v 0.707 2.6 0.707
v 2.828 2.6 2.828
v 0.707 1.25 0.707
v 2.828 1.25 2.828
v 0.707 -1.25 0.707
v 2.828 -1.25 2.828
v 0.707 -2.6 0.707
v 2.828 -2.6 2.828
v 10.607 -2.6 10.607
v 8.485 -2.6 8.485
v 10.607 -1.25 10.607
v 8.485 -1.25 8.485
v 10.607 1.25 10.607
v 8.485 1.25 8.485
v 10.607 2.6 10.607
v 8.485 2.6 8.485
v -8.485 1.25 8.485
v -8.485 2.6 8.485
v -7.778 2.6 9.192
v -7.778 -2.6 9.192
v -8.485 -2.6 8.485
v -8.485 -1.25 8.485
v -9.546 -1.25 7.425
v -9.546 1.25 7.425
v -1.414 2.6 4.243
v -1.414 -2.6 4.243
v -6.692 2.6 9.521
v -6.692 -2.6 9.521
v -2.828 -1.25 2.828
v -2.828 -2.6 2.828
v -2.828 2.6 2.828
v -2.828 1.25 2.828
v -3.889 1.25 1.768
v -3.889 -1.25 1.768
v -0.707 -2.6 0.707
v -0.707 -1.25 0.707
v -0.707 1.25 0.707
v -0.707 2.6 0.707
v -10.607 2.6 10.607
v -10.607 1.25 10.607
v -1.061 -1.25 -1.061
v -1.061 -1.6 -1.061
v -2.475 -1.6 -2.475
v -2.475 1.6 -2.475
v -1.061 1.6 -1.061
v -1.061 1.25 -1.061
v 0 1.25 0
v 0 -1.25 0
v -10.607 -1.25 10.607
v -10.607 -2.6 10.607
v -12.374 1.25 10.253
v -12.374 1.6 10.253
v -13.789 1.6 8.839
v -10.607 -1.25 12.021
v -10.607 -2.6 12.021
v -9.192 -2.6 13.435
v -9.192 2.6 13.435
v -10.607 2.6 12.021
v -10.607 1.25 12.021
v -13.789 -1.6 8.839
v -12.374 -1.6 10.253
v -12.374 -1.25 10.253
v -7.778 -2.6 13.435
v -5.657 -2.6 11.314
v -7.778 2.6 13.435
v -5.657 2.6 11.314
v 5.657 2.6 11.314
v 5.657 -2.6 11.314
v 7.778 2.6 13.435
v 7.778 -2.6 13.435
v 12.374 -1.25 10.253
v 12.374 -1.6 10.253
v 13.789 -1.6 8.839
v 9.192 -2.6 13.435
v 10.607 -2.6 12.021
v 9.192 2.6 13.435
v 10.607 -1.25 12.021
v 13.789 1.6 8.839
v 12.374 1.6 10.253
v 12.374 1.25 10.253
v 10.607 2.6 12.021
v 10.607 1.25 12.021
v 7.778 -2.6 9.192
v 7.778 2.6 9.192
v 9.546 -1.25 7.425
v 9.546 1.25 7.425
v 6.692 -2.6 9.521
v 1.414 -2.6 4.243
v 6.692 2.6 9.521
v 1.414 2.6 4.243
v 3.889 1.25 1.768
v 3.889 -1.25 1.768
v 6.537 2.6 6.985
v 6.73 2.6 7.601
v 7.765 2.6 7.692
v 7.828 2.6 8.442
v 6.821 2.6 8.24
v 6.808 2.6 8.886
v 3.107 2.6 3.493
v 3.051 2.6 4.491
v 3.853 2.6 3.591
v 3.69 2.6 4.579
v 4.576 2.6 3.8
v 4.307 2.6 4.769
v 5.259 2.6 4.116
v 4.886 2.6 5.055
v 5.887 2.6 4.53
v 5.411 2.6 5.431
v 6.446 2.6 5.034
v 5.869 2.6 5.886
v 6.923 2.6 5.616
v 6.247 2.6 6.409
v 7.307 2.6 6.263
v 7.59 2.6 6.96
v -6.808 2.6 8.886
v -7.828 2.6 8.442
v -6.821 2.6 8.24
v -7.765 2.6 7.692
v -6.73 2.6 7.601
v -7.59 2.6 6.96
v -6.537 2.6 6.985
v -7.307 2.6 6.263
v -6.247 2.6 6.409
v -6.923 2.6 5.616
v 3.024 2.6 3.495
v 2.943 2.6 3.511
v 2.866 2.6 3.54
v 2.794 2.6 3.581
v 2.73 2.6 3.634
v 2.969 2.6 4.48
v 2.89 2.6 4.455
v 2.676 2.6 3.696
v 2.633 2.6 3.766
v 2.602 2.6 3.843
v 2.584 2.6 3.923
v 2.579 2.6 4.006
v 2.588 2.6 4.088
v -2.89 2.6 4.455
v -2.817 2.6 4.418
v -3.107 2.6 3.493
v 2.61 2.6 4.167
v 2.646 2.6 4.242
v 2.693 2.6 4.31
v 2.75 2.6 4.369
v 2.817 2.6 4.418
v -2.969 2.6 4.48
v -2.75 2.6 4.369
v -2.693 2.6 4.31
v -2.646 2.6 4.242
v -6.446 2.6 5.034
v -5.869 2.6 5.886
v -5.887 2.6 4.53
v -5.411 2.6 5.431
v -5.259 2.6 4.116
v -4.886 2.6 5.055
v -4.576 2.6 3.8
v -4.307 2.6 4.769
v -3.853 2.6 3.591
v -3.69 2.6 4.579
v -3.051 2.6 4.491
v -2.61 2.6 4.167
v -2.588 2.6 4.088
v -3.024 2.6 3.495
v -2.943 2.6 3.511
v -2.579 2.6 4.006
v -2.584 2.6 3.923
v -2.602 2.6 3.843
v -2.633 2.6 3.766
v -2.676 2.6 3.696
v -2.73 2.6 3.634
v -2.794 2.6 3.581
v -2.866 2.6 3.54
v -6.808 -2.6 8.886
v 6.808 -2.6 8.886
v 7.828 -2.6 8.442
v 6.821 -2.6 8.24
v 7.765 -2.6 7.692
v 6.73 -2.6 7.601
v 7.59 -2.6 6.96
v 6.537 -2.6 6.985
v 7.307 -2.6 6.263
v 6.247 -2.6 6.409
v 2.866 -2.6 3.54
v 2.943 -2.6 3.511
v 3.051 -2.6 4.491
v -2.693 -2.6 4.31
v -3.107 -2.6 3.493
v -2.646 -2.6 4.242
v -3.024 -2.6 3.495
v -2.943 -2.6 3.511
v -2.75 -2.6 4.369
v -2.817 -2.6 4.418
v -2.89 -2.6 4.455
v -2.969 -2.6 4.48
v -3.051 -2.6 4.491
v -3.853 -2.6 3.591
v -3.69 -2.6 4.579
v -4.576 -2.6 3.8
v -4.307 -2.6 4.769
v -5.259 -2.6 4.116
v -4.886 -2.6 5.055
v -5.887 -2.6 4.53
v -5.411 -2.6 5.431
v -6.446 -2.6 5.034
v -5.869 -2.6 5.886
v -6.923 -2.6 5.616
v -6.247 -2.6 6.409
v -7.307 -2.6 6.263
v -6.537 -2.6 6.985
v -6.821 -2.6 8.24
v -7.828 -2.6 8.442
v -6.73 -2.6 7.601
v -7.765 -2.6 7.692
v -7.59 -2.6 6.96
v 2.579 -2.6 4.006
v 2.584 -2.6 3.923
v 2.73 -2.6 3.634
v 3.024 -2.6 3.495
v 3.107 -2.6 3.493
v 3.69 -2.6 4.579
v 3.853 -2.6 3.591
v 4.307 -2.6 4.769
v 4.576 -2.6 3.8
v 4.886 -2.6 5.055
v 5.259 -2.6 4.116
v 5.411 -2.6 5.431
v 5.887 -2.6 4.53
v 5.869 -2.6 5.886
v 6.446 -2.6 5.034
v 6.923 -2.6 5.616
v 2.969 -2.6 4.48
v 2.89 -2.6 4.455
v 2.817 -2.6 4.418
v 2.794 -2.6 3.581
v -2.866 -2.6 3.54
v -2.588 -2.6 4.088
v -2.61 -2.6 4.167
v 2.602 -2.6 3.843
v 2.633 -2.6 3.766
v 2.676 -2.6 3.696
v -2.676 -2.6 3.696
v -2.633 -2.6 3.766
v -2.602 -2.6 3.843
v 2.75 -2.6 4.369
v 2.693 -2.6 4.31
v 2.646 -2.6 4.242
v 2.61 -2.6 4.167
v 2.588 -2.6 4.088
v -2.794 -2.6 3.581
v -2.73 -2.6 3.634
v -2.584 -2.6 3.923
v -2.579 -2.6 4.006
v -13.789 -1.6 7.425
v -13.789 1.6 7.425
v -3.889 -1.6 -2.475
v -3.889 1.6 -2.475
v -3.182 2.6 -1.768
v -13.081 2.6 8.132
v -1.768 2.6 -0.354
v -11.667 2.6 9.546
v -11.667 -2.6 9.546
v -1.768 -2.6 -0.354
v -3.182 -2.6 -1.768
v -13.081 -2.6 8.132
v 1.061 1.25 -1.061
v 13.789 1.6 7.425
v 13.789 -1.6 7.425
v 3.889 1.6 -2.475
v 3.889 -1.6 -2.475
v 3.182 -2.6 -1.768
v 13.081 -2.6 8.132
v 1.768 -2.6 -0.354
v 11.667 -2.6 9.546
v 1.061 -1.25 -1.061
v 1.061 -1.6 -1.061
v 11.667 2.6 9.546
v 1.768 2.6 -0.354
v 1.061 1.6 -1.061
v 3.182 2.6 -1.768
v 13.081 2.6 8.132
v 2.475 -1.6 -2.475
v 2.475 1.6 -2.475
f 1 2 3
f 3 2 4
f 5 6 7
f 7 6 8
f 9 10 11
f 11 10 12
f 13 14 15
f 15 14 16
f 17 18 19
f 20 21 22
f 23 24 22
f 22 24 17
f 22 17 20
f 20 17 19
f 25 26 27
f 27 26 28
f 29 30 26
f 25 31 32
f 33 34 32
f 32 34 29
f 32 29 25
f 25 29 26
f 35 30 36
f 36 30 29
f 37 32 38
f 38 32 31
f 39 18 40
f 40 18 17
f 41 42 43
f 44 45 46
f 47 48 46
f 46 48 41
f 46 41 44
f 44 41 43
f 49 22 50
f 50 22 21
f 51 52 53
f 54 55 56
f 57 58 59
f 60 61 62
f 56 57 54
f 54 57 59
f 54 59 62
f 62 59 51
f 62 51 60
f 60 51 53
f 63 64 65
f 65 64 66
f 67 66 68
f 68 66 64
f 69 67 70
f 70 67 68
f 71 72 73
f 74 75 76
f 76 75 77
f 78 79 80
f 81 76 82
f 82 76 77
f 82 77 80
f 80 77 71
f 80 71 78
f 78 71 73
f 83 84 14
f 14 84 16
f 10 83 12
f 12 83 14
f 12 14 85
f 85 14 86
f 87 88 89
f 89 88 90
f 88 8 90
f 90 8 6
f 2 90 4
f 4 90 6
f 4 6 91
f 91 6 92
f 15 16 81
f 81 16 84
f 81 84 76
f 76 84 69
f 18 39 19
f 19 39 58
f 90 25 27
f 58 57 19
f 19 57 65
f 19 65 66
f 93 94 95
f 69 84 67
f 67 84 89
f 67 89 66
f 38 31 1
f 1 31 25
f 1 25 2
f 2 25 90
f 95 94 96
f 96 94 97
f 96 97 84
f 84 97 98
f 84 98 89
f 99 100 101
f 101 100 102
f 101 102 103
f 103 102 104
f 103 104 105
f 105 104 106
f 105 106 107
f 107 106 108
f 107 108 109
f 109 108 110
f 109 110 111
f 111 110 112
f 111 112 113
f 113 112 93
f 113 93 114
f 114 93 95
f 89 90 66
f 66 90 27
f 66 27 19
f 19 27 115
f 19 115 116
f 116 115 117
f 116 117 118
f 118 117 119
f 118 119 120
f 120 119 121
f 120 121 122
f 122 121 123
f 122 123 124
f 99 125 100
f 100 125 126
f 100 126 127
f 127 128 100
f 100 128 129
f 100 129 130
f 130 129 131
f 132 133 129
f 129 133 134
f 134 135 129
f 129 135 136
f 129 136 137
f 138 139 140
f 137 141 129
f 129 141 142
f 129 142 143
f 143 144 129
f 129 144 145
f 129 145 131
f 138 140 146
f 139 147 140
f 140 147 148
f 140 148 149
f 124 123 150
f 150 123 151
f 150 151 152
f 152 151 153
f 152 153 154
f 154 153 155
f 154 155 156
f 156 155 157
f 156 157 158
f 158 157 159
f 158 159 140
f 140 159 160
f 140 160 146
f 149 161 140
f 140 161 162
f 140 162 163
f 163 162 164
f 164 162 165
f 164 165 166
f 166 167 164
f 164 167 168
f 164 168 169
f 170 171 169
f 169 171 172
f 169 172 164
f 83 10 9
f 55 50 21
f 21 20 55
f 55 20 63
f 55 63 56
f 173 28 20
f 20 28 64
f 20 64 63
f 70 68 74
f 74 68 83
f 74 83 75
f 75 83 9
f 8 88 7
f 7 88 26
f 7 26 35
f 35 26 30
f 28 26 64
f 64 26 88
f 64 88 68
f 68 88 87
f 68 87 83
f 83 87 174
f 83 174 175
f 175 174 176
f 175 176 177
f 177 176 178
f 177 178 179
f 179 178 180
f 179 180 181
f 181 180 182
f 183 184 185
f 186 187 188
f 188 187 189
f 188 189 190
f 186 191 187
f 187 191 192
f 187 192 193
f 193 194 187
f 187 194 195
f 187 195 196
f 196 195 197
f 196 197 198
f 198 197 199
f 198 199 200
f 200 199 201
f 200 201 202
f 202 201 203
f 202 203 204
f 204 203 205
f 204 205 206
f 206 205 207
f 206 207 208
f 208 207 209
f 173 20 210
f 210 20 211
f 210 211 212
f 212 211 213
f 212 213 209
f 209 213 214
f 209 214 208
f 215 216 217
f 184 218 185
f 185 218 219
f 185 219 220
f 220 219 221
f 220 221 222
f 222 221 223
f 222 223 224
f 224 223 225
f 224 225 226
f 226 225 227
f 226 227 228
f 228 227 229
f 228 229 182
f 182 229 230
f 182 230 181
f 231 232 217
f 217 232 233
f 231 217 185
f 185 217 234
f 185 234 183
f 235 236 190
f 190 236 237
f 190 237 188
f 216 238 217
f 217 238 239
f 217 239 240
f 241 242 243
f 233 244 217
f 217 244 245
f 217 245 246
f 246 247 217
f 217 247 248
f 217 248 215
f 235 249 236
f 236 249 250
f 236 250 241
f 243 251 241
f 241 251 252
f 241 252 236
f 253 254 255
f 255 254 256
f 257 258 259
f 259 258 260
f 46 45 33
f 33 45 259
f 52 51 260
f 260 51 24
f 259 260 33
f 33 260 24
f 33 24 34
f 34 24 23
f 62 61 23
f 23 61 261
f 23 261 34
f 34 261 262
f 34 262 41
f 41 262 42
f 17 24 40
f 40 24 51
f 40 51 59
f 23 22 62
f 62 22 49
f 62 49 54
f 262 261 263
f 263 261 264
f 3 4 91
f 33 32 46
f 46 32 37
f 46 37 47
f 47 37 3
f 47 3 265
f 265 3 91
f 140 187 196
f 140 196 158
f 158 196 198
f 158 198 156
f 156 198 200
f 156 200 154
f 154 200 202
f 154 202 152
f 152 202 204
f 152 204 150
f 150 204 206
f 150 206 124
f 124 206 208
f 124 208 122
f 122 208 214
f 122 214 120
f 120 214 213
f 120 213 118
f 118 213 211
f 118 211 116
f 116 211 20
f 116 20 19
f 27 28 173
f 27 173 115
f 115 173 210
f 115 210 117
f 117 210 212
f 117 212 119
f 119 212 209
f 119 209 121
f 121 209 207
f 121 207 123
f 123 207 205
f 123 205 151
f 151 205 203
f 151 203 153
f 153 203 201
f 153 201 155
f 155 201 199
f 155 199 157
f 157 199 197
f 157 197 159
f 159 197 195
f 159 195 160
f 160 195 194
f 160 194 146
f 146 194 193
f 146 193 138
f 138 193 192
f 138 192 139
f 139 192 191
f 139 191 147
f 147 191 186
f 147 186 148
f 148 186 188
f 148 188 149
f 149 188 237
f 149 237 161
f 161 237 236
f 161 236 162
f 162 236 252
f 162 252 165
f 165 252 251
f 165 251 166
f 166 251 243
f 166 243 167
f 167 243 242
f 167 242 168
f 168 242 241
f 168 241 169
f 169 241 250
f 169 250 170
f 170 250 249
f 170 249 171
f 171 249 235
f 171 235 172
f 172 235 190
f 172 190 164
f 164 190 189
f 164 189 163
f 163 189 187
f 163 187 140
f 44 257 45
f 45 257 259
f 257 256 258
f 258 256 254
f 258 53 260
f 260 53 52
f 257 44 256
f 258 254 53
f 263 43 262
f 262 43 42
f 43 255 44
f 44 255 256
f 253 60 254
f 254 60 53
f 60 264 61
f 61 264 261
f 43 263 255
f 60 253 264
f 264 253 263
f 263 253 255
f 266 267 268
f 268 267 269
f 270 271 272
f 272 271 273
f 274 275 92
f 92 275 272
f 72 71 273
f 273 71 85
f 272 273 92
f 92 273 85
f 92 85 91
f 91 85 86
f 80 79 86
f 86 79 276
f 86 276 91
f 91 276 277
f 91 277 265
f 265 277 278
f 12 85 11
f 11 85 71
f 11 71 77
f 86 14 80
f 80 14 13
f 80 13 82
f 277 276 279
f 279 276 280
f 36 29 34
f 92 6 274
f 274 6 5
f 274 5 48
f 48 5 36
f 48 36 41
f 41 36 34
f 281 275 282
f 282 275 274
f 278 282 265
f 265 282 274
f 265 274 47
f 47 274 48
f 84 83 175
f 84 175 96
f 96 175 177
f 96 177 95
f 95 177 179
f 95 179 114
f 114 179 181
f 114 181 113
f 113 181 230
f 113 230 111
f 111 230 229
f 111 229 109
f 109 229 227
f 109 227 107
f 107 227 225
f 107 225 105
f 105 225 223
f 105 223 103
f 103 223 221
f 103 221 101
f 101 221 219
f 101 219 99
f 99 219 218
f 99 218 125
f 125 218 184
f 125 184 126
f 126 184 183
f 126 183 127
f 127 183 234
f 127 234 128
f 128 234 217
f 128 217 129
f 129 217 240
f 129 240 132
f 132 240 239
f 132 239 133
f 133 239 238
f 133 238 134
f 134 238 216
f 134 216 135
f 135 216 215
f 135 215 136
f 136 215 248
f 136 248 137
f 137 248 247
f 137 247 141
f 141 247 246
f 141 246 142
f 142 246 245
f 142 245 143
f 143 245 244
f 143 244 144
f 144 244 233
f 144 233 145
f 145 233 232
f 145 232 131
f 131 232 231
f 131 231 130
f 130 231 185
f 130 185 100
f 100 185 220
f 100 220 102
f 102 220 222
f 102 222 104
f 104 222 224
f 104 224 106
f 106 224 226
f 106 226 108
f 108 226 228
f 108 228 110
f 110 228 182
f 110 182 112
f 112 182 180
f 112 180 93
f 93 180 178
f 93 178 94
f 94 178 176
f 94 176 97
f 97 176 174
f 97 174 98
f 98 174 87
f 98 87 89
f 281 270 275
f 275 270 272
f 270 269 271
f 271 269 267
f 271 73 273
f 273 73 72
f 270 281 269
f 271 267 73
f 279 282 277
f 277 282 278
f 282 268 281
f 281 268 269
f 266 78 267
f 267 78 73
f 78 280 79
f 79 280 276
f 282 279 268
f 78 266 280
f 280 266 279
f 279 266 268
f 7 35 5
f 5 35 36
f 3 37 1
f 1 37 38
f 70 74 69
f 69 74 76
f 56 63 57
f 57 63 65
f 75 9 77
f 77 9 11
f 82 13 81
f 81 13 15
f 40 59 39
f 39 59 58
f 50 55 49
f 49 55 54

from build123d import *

# Parameters (mm, degrees)
BOSS_EXTRUDE1_DEPTH      = 2.6
BOSS_EXTRUDE2_DEPTH      = 4
SKETCH3_W                = 3
SKETCH3_H                = 5.2
BOSS_EXTRUDE3_DEPTH      = 8
BOSS_EXTRUDE4_DEPTH      = 2.6
CHAMFER1_SIZE            = 1
MIRROR2_COPY_1_DEPTH     = 4
CHAMFER1_OF_MIRROR2_SIZE = 1
CHAMFER2_SIZE            = 1


with BuildPart() as part:
    # Sketch1 → Boss-Extrude1 (new, symmetric)
    with BuildSketch(Plane(origin=(0, 0, 0), x_dir=(1, 0, 0), z_dir=(0, 1, 0))):
        Polygon((0, 0), (-2.828427125, -2.828427125), (-1.414213562, -4.242640687), (-7.071067812, -9.899494937), (-8.485281374, -8.485281374), (-11.313708499, -11.313708499), (-8.485281374, -14.142135624), (-5.656854249, -11.313708499), (5.656854249, -11.313708499), (8.485281374, -14.142135624), (11.313708499, -11.313708499), (8.485281374, -8.485281374), (7.071067812, -9.899494937), (1.414213562, -4.242640687), (2.828427125, -2.828427125), align=None)
    extrude(amount=BOSS_EXTRUDE1_DEPTH, both=True)

    # Sketch2 → Boss-Extrude2 (add)
    with BuildSketch(Plane(origin=(-11.313708499, 0, 11.313708499), x_dir=(0.7071067811865501, 0, 0.7071067811865449), z_dir=(-0.7071067811865449, 0, 0.7071067811865501))):
        Polygon((-1.5, -1.25), (-1.5, -2.6), (-4.5, -2.6), (-4.5, 2.6), (-1.5, 2.6), (-1.5, 1.25), (0, 1.25), (0, -1.25), align=None)
    boss_extrude2 = extrude(amount=-BOSS_EXTRUDE2_DEPTH)

    # Mirror1: Boss-Extrude2 across plane
    add(boss_extrude2.mirror(Plane(origin=(-5.656854249, 0, 5.656854249), x_dir=(0.707106781186549, 0, 0.707106781186546), z_dir=(-0.707106781186546, 0, 0.707106781186549))))

    # Sketch3 → Boss-Extrude3 (add)
    with BuildSketch(Plane(origin=(-2.828427125, 0, 2.828427125), x_dir=(0.7071067811865493, 0, 0.7071067811865457), z_dir=(-0.7071067811865457, 0, 0.7071067811865493))):
        with Locations((-3, 0)):
            Rectangle(SKETCH3_W, SKETCH3_H)
    boss_extrude3 = extrude(amount=BOSS_EXTRUDE3_DEPTH)

    # Sketch4 → Boss-Extrude4 (add, symmetric)
    with BuildSketch(Plane(origin=(0, 0, 0), x_dir=(1, 0, 0), z_dir=(0, 1, 0))):
        with BuildLine():
            Line((-7.778174593, -9.192388155), (-7.071067812, -9.899494937))
            Line((-7.071067812, -9.899494937), (-6.69213043, -9.520557555))
            ThreePointArc((-6.69213043, -9.520557555), (-6.068382545, -6.139500295), (-3.050994148, -4.491478184))
            ThreePointArc((-3.050994148, -4.491478184), (-2.579589628, -3.964431908), (-3.106635904, -3.493027387))
            ThreePointArc((-3.106635904, -3.493027387), (-6.695410435, -5.315669399), (-7.778174593, -9.192388155))
        make_face()
    boss_extrude4 = extrude(amount=BOSS_EXTRUDE4_DEPTH, both=True)

    # Chamfer1
    chamfer1_edges = [part.edges().sort_by_distance(p)[0] for p in [
        (-8.838834765, -2.6, 2.474873734),
        (-8.838834765, 2.6, 2.474873734),
        (-14.495689014, 0, 8.131727984),
        (-13.435028843, -2.6, 9.192388155),
        (-13.435028843, 2.6, 9.192388155),
        (-3.181980515, 0, -3.181980515),
        (-2.121320344, -2.6, -2.121320344),
        (-2.121320344, 2.6, -2.121320344),
    ]]
    chamfer(chamfer1_edges, length=CHAMFER1_SIZE)

    # Mirror2: Boss-Extrude2, Boss-Extrude3, Boss-Extrude4 across plane
    add(boss_extrude2.mirror(Plane(origin=(0, 0, 0), x_dir=(0, 0, 1), z_dir=(1, 0, 0))))
    add(boss_extrude3.mirror(Plane(origin=(0, 0, 0), x_dir=(0, 0, 1), z_dir=(1, 0, 0))))
    add(boss_extrude4.mirror(Plane(origin=(0, 0, 0), x_dir=(0, 0, 1), z_dir=(1, 0, 0))))

    # Mirror2 copy 1 sketch → Mirror2 copy 1 (add)
    with BuildSketch(Plane(origin=(0, 0, 0), x_dir=(-0.7071067811865479, 0, 0.7071067811865471), z_dir=(-0.7071067811865471, 0, -0.7071067811865479))):
        Polygon((-1.5, -1.25), (-1.5, -2.6), (-4.5, -2.6), (-4.5, 2.6), (-1.5, 2.6), (-1.5, 1.25), (0, 1.25), (0, -1.25), align=None)
    extrude(amount=-MIRROR2_COPY_1_DEPTH)

    # Chamfer1 of Mirror2
    chamfer1_of_mirror2_edges = [part.edges().sort_by_distance(p)[0] for p in [
        (8.838834765, -2.6, 2.474873734),
        (8.838834765, 2.6, 2.474873734),
        (14.495689014, 0, 8.131727984),
        (13.435028843, -2.6, 9.192388155),
        (13.435028843, 2.6, 9.192388155),
        (3.181980515, 0, -3.181980515),
        (2.121320344, -2.6, -2.121320344),
        (2.121320344, 2.6, -2.121320344),
    ]]
    chamfer(chamfer1_of_mirror2_edges, length=CHAMFER1_OF_MIRROR2_SIZE)

    # Chamfer2
    # the kernel refuses this chamfer: 1 mm, written as the material it takes off along each edge
    with BuildSketch(Plane(origin=(11.313708499, -5.171682988, 11.313708499), x_dir=(-0.6873969152646685, 0, 0.7262819568766788), z_dir=(0, 1, 0)), Plane(origin=(11.313708499, 1.25, 11.313708499), x_dir=(-0.6873969152646685, 0, 0.7262819568766788), z_dir=(0, 1, 0)), Plane(origin=(0, 5.171682988, 0), x_dir=(-0.7262819568766743, 0, 0.6873969152646733), z_dir=(0, -1, 0)), Plane(origin=(-11.313708499, -5.171682988, 11.313708499), x_dir=(0.6873969152646597, 0, -0.7262819568766873), z_dir=(0, 1, 0)), Plane(origin=(0, -1.25, 0), x_dir=(-0.7262819568766743, 0, 0.6873969152646733), z_dir=(0, -1, 0))) as chamfer2_piece_1:
        Polygon((CHAMFER2_SIZE * 0.999621916911, -CHAMFER2_SIZE * 0.0274958766106), (-CHAMFER2_SIZE * 0.0274958766106, -CHAMFER2_SIZE * 0.999621916911), (0, 0), align=None)
    extrude(amount=3.921682988, mode=Mode.SUBTRACT)
    with BuildSketch(Plane(origin=(11.313708499, -5.171682988, 11.313708499), x_dir=(-0.6873969152646685, 0, 0.7262819568766788), z_dir=(0, 1, 0))) as chamfer2_piece_2_section:
        Polygon((CHAMFER2_SIZE * 0.999621916911, -CHAMFER2_SIZE * 0.0274958766106), (-CHAMFER2_SIZE * 0.0274958766106, -CHAMFER2_SIZE * 0.999621916911), (0, 0), align=None)
    chamfer2_piece_2 = extrude(amount=6.493365976, mode=Mode.PRIVATE)
    chamfer2_piece_2 = split(chamfer2_piece_2, bisect_by=Plane(origin=(10.847309879, 1.25, 11.313708499), z_dir=(0, 1, 0)), keep=Keep.TOP, mode=Mode.PRIVATE)
    add(chamfer2_piece_2, mode=Mode.SUBTRACT)
    with BuildSketch(Plane(origin=(11.313708499, -1.321682988, 11.313708499), x_dir=(-0.6873969152646685, 0, 0.7262819568766788), z_dir=(0, 1, 0))) as chamfer2_piece_3_section:
        Polygon((CHAMFER2_SIZE * 0.999621916911, -CHAMFER2_SIZE * 0.0274958766106), (-CHAMFER2_SIZE * 0.0274958766106, -CHAMFER2_SIZE * 0.999621916911), (0, 0), align=None)
    chamfer2_piece_3 = extrude(amount=6.493365976, mode=Mode.PRIVATE)
    chamfer2_piece_3 = split(chamfer2_piece_3, bisect_by=Plane(origin=(10.847309879, -1.25, 11.313708499), z_dir=(0, -1, 0)), keep=Keep.TOP, mode=Mode.PRIVATE)
    add(chamfer2_piece_3, mode=Mode.SUBTRACT)
    with BuildSketch(Plane(origin=(8.485281374, -5.171682988, 14.142135624), x_dir=(0.7262819568766956, 0, -0.6873969152646507), z_dir=(0, 1, 0))) as chamfer2_piece_4:
        Polygon((CHAMFER2_SIZE * 0.999621916911, CHAMFER2_SIZE * 0.0274958766106), (-CHAMFER2_SIZE * 0.0274958766106, CHAMFER2_SIZE * 0.999621916911), (0, 0), align=None)
    extrude(amount=10.343365976, mode=Mode.SUBTRACT)
    with BuildSketch(Plane(origin=(-8.485281374, -5.171682988, 14.142135624), x_dir=(-0.7262819568766898, 0, -0.687396915264657), z_dir=(0, 1, 0))) as chamfer2_piece_5:
        Polygon((CHAMFER2_SIZE * 0.999621916911, -CHAMFER2_SIZE * 0.0274958766106), (-CHAMFER2_SIZE * 0.0274958766106, -CHAMFER2_SIZE * 0.999621916911), (0, 0), align=None)
    extrude(amount=10.343365976, mode=Mode.SUBTRACT)
    with BuildSketch(Plane(origin=(-11.313708499, -1.321682988, 11.313708499), x_dir=(0.6873969152646623, 0, 0.7262819568766848), z_dir=(0, 1, 0))) as chamfer2_piece_6_section:
        Polygon((CHAMFER2_SIZE * 0.999621916911, CHAMFER2_SIZE * 0.0274958766106), (-CHAMFER2_SIZE * 0.0274958766106, CHAMFER2_SIZE * 0.999621916911), (0, 0), align=None)
    chamfer2_piece_6 = extrude(amount=6.493365976, mode=Mode.PRIVATE)
    chamfer2_piece_6 = split(chamfer2_piece_6, bisect_by=Plane(origin=(-10.847309879, -1.25, 11.313708499), z_dir=(0, -1, 0)), keep=Keep.TOP, mode=Mode.PRIVATE)
    add(chamfer2_piece_6, mode=Mode.SUBTRACT)
    with BuildSketch(Plane(origin=(-11.313708499, 1.25, 11.313708499), x_dir=(0.6873969152646623, 0, 0.7262819568766848), z_dir=(0, 1, 0))) as chamfer2_piece_7:
        Polygon((CHAMFER2_SIZE * 0.999621916911, CHAMFER2_SIZE * 0.0274958766106), (-CHAMFER2_SIZE * 0.0274958766106, CHAMFER2_SIZE * 0.999621916911), (0, 0), align=None)
    extrude(amount=3.921682988, mode=Mode.SUBTRACT)
    with BuildSketch(Plane(origin=(0, 5.171682988, 0), x_dir=(-0.7262819568766743, 0, 0.6873969152646733), z_dir=(0, -1, 0))) as chamfer2_piece_8_section:
        Polygon((CHAMFER2_SIZE * 0.999621916911, -CHAMFER2_SIZE * 0.0274958766106), (-CHAMFER2_SIZE * 0.0274958766106, -CHAMFER2_SIZE * 0.999621916911), (0, 0), align=None)
    chamfer2_piece_8 = extrude(amount=6.493365976, mode=Mode.PRIVATE)
    chamfer2_piece_8 = split(chamfer2_piece_8, bisect_by=Plane(origin=(0, -1.25, 0.46639862), z_dir=(0, -1, 0)), keep=Keep.TOP, mode=Mode.PRIVATE)
    add(chamfer2_piece_8, mode=Mode.SUBTRACT)
    with BuildSketch(Plane(origin=(-11.313708499, -5.171682988, 11.313708499), x_dir=(0.6873969152646597, 0, -0.7262819568766873), z_dir=(0, 1, 0))) as chamfer2_piece_9_section:
        Polygon((CHAMFER2_SIZE * 0.999621916911, -CHAMFER2_SIZE * 0.0274958766106), (-CHAMFER2_SIZE * 0.0274958766106, -CHAMFER2_SIZE * 0.999621916911), (0, 0), align=None)
    chamfer2_piece_9 = extrude(amount=6.493365976, mode=Mode.PRIVATE)
    chamfer2_piece_9 = split(chamfer2_piece_9, bisect_by=Plane(origin=(-10.847309879, 1.25, 11.313708499), z_dir=(0, 1, 0)), keep=Keep.TOP, mode=Mode.PRIVATE)
    add(chamfer2_piece_9, mode=Mode.SUBTRACT)
    with BuildSketch(Plane(origin=(0, 1.321682988, 0), x_dir=(-0.7262819568766743, 0, 0.6873969152646733), z_dir=(0, -1, 0))) as chamfer2_piece_10_section:
        Polygon((CHAMFER2_SIZE * 0.999621916911, -CHAMFER2_SIZE * 0.0274958766106), (-CHAMFER2_SIZE * 0.0274958766106, -CHAMFER2_SIZE * 0.999621916911), (0, 0), align=None)
    chamfer2_piece_10 = extrude(amount=6.493365976, mode=Mode.PRIVATE)
    chamfer2_piece_10 = split(chamfer2_piece_10, bisect_by=Plane(origin=(0, 1.25, 0.46639862), z_dir=(0, 1, 0)), keep=Keep.TOP, mode=Mode.PRIVATE)
    add(chamfer2_piece_10, mode=Mode.SUBTRACT)


solid = part.part
